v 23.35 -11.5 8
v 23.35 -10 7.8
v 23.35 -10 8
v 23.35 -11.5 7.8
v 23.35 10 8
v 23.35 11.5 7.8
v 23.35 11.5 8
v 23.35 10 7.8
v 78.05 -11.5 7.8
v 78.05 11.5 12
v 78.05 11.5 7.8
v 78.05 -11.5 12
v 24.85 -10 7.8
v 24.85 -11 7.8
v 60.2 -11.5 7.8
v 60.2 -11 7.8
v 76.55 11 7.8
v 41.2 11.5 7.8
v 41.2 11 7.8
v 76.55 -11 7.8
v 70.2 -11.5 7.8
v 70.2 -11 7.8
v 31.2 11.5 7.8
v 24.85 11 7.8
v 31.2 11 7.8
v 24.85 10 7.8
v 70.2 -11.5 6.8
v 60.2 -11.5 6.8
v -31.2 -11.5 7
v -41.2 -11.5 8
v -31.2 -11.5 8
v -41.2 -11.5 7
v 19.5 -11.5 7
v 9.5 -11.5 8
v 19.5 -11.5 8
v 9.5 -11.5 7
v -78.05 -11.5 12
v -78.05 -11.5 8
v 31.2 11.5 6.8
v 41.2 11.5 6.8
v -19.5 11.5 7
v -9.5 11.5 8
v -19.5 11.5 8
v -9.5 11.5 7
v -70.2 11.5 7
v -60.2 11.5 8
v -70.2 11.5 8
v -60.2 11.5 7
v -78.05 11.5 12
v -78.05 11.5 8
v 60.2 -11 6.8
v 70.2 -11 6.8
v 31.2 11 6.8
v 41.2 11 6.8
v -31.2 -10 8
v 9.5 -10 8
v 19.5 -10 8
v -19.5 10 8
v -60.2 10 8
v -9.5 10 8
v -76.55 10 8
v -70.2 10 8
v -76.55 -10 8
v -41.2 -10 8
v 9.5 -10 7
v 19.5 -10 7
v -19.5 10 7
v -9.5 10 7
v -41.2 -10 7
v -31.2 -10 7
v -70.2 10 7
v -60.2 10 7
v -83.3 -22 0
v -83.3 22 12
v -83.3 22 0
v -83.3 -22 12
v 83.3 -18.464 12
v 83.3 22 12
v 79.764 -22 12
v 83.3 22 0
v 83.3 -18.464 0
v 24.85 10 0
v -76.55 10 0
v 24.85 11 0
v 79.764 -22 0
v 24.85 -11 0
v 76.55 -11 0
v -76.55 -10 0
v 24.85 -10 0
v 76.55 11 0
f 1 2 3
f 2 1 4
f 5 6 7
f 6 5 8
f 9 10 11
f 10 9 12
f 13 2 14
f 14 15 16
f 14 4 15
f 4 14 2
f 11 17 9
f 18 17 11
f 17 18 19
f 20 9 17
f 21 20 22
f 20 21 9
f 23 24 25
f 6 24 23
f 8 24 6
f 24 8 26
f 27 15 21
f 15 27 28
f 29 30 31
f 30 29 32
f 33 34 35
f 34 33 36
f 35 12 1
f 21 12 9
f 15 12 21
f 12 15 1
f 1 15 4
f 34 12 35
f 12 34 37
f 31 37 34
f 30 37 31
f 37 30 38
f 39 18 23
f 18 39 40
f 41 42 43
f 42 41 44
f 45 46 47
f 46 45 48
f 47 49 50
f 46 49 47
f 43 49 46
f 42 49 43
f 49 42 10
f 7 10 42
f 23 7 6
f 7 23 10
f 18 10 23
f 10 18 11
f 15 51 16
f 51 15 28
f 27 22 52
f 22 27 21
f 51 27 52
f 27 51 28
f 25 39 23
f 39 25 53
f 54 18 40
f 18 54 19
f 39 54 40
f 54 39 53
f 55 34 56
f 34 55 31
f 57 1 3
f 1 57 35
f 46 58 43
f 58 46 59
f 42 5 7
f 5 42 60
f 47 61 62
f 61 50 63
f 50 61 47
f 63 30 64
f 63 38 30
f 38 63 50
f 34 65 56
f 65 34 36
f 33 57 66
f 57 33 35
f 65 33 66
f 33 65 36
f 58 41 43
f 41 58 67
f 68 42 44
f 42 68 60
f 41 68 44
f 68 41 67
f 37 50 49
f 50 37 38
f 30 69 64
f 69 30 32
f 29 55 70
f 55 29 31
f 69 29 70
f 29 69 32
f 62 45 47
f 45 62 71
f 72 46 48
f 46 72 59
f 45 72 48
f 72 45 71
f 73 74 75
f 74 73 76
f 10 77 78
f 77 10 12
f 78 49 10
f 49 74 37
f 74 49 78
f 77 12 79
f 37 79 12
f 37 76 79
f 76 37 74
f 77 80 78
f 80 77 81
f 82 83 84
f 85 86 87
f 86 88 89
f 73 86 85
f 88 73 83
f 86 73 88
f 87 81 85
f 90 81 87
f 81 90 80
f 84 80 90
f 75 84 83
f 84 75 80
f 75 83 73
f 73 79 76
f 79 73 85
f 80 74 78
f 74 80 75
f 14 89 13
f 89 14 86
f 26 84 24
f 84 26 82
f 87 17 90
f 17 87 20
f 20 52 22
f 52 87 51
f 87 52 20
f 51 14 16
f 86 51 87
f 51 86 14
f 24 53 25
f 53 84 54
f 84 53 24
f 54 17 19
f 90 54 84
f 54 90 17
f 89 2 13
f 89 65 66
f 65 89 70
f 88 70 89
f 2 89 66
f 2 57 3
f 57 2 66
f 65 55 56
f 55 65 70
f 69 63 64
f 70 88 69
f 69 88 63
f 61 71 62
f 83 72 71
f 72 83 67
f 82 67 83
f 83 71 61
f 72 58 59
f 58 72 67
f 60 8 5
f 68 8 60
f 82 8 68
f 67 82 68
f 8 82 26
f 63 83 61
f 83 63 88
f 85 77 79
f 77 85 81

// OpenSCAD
// file: BoxCommon.scad
// Sum array members:
function suma(array,start,end) =
    (start==end)
    ? array[start]
    : suma(array, start+1, end) + array[start];
function e(clear,o) =// Add clear to demensions of o
     (is_list(clear)) ?
        [o.x+clear.x,o.y+clear.y,o.z+clear.z] :
        [o.x+clear,o.y+clear,o.z+clear];
 
DISPBLOCK=[16+50.2*3,44,12]; // Z is arbitrary at the moment

// FF=Fudge Factor

DMM_BOARD_X=66 ; // 63 NO FF FROM DRAWING
DMM_BOARD_Y=2 ; // 1.6 NO FF Measured
S_VO_OFFS=-19.08; // From drawing
S_Widths=14; // FROM Drawing
// Places 5A jack at edge of board.:
S_FUDGE=DMM_BOARD_X/2-S_Widths*2-2; 
S1=-S_Widths/2+S_FUDGE;
S0=S_VO_OFFS+S1;
S2=S_Widths/2+S_FUDGE; 
S3=S2+S_Widths;
DMM_JAX_X=[S0,S1,S2,S3];

// STack up to C/L of jack in Y - Measured terms
DMM_JAX_Y=DMM_BOARD_Y/2+4.9+5.5/2; 
DMM_JAX_LOWER_DIA=12; // Measured
DMM_JAX_UPPER_DIA=15; // Same as S_Widths
DMM_JAX_Z_OFFS=3.3 ; // How much of the lower shoulder shows.

for (i=[DMM_JAX_X])
    echo(i);
echo(DMM_JAX_Y);
// main file
include <BoxCommon.scad>;
       
DIS54=[50.7,22,7.8]; // Alphanumeric
DIS56=[50.7,20,8.0]; // Digits
FEATHER=[50.7,23,15];
E_FEATHER=e([4,0,0],FEATHER);
offsx=FEATHER.x;
notch=[10,4,2];
npos=14.5;

difference()
{
    // Main block
    translate([0,0,DISPBLOCK.z/2]) cube(DISPBLOCK,true);
    // Cutouts:
    // This is the LED Block
    translate([offsx,0,DIS54.z/2-.01]) // Lower part
        cube(e([1,0,1],DIS54),true);
    // This is the slot the feather drops into
    translate([offsx,0,DIS54.z+FEATHER.z/2]) //upper part
        union()
        {
            cube(E_FEATHER,true);
            // Notches for the soldered terminals.
            translate([npos,notch.y/2-FEATHER.y/2,-FEATHER.z/2])
                cube(notch,true);
            translate([-npos,-notch.y/2+FEATHER.y/2,-FEATHER.z/2])
                cube(notch,true);
        }
    
    translate([0,0,DIS56.z/2-.01])
        cube(e([1,0,1],DIS56),true);
     translate([0,0,DIS56.z+FEATHER.z/2]) 
         union()
        {
            cube(E_FEATHER,true);
            translate([npos,notch.y/2-FEATHER.y/2,-FEATHER.z/2])
                cube(notch,true);
            translate([-npos,-notch.y/2+FEATHER.y/2,-FEATHER.z/2])
                cube(notch,true);
        }
            
    translate([-offsx,0,DIS56.z/2-.01])
        cube(e([1,0,1],DIS56),true);
     translate([-offsx,0,DIS56.z+FEATHER.z/2]) 
        union()
        {
            cube(E_FEATHER,true);
            translate([npos,notch.y/2-FEATHER.y/2,-FEATHER.z/2])
                cube(notch,true);
            translate([-npos,-notch.y/2+FEATHER.y/2,-FEATHER.z/2])
                cube(notch,true);
           }
        // Corner marker:
          translate([DISPBLOCK.x/2,-DISPBLOCK.y/2,DISPBLOCK.z/2])
                rotate([0,0,45]) cube([5,5,DISPBLOCK.z+5],true);
        }
    
